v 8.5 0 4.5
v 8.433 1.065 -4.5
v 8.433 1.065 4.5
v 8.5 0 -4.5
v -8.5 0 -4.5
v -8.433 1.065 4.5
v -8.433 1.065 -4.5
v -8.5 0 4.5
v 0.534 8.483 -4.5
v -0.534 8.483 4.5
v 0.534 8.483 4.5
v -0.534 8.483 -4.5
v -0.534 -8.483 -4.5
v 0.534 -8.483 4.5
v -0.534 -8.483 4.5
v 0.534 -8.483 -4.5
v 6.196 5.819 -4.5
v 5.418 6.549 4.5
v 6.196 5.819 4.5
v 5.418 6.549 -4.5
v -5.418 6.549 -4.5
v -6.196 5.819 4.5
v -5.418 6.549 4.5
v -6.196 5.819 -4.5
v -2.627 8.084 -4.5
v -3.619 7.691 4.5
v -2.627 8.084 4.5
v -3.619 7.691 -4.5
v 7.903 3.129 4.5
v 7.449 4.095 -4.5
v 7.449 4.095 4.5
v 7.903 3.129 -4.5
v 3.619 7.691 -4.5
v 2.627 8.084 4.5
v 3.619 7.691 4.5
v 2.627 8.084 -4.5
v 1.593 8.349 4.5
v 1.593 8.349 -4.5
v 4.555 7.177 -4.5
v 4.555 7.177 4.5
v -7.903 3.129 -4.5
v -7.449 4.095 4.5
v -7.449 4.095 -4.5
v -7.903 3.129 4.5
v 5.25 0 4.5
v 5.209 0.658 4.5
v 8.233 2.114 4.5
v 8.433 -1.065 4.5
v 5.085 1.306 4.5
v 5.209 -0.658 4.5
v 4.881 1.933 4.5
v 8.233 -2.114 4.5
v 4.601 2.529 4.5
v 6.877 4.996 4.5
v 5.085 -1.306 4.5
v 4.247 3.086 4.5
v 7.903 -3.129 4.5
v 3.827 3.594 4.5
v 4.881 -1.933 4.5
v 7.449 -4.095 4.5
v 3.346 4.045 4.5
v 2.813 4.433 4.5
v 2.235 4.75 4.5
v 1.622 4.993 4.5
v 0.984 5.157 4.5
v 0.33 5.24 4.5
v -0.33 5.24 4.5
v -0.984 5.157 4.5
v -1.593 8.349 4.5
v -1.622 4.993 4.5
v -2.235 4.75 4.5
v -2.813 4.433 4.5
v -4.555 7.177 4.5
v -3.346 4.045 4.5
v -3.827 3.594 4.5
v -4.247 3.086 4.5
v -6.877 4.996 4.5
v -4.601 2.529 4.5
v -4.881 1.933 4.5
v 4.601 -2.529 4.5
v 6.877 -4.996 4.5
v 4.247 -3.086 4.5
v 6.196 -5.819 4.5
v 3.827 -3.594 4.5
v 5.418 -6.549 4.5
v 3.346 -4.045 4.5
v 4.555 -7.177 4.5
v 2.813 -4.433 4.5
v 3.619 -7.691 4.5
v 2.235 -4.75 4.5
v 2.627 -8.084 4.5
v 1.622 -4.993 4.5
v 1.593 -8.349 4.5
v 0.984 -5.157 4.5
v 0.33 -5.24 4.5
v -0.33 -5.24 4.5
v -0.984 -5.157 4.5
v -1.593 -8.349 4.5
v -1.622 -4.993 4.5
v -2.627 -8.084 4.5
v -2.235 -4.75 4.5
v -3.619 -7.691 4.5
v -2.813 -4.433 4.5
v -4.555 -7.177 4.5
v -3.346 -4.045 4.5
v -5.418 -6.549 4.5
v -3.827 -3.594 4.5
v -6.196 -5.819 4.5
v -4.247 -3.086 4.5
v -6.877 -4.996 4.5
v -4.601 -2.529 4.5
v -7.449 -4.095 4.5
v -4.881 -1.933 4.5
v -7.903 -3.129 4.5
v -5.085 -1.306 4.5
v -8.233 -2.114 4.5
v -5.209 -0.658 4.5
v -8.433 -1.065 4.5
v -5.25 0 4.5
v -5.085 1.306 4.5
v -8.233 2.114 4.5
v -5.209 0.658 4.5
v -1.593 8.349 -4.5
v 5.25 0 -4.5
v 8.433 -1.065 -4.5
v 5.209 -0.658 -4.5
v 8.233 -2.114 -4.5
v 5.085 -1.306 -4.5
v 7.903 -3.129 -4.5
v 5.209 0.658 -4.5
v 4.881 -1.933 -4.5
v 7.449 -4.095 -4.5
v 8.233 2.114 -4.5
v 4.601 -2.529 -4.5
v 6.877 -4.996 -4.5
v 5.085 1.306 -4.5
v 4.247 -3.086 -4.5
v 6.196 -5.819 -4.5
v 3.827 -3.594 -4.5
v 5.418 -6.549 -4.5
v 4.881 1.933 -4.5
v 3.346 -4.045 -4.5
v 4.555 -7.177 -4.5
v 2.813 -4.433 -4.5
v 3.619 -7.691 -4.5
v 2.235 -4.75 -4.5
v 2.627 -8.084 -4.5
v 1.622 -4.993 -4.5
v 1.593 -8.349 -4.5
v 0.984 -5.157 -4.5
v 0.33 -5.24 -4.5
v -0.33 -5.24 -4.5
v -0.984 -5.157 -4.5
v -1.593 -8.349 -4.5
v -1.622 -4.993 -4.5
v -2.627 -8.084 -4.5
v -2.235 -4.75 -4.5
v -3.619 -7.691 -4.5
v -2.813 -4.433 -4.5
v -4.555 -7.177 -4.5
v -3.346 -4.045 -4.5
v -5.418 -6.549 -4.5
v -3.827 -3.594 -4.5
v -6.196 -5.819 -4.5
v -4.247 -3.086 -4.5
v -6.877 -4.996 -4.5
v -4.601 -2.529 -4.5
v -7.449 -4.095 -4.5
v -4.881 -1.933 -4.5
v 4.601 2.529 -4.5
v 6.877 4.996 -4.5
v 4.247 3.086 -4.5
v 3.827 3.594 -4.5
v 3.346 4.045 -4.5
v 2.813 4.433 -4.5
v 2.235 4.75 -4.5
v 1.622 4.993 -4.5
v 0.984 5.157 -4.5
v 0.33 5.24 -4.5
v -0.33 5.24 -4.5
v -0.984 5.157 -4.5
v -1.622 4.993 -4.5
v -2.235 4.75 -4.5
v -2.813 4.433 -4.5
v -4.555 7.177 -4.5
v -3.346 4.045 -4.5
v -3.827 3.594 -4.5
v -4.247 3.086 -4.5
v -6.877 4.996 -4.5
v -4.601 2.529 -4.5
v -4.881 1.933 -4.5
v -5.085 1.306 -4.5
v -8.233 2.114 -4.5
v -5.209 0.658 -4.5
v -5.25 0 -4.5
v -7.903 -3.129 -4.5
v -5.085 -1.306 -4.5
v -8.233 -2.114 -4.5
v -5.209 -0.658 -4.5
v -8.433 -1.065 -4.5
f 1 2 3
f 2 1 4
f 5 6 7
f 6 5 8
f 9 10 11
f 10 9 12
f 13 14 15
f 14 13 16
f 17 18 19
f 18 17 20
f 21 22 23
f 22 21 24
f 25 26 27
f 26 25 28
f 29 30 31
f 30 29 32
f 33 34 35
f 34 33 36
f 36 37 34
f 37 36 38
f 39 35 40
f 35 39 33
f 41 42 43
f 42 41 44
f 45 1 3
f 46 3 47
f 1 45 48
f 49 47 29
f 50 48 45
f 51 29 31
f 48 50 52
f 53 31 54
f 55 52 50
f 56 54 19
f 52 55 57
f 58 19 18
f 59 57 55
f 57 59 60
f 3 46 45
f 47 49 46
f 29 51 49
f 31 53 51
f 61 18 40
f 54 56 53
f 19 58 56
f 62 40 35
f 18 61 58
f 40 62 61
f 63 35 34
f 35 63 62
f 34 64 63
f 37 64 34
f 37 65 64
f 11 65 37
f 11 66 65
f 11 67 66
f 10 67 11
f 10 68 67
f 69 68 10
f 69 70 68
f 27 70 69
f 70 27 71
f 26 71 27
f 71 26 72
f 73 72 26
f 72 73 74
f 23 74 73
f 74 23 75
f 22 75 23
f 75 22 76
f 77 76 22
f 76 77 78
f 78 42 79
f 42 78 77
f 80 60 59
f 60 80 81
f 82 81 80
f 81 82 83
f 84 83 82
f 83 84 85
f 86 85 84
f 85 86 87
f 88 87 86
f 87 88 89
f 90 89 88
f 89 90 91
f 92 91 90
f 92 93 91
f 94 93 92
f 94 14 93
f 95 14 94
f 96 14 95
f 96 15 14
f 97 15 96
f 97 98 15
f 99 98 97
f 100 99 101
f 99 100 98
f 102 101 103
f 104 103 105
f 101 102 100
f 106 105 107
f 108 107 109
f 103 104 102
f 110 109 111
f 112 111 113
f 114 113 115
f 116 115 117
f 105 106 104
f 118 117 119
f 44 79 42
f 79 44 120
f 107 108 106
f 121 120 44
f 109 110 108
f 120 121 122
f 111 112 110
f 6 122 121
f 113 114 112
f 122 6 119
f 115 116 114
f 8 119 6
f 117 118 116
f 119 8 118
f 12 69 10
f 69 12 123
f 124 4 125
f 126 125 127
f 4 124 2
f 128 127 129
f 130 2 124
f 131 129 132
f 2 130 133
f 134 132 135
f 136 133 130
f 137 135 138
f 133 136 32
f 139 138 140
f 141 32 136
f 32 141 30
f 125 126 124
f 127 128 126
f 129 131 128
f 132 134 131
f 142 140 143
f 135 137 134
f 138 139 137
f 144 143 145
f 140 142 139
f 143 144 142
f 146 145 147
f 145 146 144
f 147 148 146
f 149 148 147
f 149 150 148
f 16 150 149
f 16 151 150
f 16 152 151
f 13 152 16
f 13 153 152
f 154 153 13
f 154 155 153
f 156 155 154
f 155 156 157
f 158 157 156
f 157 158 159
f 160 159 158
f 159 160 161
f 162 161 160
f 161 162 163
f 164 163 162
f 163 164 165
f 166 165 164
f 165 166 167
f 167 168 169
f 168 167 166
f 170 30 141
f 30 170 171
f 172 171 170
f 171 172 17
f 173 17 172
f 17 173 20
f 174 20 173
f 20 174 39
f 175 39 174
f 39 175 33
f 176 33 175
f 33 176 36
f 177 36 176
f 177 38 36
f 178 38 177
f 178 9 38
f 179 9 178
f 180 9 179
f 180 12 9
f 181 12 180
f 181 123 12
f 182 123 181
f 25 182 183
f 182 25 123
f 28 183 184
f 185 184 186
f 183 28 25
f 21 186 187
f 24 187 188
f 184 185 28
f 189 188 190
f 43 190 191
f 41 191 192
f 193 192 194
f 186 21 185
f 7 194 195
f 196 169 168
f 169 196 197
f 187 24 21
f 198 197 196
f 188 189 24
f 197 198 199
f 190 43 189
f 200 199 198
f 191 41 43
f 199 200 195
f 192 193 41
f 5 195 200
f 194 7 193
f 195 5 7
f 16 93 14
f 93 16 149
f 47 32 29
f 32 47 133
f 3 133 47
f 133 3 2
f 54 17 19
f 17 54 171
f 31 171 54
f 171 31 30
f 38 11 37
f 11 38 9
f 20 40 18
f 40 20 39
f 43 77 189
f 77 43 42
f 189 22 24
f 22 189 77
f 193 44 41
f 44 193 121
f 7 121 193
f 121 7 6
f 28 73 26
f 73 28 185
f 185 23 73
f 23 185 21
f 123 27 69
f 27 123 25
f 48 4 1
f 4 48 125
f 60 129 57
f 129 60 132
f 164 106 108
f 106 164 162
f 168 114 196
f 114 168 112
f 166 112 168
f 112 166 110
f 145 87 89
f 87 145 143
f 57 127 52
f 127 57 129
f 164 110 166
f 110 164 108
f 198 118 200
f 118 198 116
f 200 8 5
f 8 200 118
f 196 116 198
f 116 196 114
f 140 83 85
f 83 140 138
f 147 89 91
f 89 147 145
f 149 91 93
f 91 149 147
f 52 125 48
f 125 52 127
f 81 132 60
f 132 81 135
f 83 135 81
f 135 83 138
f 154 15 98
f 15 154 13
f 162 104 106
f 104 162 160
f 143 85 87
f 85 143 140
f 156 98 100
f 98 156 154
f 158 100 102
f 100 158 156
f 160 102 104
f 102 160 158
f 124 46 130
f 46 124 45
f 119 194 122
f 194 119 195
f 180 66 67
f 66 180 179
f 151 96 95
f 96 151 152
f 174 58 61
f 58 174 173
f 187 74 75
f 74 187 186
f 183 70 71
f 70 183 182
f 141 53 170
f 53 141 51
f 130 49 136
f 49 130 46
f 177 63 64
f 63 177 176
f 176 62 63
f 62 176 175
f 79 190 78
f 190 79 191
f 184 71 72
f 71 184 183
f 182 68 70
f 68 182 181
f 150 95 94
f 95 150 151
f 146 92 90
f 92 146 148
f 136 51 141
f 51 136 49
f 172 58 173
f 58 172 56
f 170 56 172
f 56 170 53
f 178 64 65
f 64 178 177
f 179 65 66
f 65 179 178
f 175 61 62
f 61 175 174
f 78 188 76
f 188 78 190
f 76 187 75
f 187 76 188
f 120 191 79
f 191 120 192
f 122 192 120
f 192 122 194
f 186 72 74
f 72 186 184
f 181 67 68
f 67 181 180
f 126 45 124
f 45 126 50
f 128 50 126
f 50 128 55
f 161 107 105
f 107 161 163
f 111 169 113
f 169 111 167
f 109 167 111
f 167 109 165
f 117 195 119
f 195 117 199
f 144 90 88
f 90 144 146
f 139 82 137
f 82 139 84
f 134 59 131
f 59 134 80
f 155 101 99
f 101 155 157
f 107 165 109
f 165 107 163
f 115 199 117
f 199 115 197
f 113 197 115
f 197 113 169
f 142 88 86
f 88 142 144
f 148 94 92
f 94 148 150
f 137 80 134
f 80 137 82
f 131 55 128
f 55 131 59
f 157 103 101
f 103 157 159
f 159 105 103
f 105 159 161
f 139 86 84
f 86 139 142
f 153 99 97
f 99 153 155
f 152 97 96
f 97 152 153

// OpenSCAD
$fn = 50;


difference() {
	union() {
		translate(v = [0, 0, -4.5000000000]) {
			cylinder(h = 9, r = 8.5000000000);
		}
	}
	union() {
		translate(v = [0, 0, -100.0000000000]) {
			cylinder(h = 200, r = 5.2500000000);
		}
	}
}
